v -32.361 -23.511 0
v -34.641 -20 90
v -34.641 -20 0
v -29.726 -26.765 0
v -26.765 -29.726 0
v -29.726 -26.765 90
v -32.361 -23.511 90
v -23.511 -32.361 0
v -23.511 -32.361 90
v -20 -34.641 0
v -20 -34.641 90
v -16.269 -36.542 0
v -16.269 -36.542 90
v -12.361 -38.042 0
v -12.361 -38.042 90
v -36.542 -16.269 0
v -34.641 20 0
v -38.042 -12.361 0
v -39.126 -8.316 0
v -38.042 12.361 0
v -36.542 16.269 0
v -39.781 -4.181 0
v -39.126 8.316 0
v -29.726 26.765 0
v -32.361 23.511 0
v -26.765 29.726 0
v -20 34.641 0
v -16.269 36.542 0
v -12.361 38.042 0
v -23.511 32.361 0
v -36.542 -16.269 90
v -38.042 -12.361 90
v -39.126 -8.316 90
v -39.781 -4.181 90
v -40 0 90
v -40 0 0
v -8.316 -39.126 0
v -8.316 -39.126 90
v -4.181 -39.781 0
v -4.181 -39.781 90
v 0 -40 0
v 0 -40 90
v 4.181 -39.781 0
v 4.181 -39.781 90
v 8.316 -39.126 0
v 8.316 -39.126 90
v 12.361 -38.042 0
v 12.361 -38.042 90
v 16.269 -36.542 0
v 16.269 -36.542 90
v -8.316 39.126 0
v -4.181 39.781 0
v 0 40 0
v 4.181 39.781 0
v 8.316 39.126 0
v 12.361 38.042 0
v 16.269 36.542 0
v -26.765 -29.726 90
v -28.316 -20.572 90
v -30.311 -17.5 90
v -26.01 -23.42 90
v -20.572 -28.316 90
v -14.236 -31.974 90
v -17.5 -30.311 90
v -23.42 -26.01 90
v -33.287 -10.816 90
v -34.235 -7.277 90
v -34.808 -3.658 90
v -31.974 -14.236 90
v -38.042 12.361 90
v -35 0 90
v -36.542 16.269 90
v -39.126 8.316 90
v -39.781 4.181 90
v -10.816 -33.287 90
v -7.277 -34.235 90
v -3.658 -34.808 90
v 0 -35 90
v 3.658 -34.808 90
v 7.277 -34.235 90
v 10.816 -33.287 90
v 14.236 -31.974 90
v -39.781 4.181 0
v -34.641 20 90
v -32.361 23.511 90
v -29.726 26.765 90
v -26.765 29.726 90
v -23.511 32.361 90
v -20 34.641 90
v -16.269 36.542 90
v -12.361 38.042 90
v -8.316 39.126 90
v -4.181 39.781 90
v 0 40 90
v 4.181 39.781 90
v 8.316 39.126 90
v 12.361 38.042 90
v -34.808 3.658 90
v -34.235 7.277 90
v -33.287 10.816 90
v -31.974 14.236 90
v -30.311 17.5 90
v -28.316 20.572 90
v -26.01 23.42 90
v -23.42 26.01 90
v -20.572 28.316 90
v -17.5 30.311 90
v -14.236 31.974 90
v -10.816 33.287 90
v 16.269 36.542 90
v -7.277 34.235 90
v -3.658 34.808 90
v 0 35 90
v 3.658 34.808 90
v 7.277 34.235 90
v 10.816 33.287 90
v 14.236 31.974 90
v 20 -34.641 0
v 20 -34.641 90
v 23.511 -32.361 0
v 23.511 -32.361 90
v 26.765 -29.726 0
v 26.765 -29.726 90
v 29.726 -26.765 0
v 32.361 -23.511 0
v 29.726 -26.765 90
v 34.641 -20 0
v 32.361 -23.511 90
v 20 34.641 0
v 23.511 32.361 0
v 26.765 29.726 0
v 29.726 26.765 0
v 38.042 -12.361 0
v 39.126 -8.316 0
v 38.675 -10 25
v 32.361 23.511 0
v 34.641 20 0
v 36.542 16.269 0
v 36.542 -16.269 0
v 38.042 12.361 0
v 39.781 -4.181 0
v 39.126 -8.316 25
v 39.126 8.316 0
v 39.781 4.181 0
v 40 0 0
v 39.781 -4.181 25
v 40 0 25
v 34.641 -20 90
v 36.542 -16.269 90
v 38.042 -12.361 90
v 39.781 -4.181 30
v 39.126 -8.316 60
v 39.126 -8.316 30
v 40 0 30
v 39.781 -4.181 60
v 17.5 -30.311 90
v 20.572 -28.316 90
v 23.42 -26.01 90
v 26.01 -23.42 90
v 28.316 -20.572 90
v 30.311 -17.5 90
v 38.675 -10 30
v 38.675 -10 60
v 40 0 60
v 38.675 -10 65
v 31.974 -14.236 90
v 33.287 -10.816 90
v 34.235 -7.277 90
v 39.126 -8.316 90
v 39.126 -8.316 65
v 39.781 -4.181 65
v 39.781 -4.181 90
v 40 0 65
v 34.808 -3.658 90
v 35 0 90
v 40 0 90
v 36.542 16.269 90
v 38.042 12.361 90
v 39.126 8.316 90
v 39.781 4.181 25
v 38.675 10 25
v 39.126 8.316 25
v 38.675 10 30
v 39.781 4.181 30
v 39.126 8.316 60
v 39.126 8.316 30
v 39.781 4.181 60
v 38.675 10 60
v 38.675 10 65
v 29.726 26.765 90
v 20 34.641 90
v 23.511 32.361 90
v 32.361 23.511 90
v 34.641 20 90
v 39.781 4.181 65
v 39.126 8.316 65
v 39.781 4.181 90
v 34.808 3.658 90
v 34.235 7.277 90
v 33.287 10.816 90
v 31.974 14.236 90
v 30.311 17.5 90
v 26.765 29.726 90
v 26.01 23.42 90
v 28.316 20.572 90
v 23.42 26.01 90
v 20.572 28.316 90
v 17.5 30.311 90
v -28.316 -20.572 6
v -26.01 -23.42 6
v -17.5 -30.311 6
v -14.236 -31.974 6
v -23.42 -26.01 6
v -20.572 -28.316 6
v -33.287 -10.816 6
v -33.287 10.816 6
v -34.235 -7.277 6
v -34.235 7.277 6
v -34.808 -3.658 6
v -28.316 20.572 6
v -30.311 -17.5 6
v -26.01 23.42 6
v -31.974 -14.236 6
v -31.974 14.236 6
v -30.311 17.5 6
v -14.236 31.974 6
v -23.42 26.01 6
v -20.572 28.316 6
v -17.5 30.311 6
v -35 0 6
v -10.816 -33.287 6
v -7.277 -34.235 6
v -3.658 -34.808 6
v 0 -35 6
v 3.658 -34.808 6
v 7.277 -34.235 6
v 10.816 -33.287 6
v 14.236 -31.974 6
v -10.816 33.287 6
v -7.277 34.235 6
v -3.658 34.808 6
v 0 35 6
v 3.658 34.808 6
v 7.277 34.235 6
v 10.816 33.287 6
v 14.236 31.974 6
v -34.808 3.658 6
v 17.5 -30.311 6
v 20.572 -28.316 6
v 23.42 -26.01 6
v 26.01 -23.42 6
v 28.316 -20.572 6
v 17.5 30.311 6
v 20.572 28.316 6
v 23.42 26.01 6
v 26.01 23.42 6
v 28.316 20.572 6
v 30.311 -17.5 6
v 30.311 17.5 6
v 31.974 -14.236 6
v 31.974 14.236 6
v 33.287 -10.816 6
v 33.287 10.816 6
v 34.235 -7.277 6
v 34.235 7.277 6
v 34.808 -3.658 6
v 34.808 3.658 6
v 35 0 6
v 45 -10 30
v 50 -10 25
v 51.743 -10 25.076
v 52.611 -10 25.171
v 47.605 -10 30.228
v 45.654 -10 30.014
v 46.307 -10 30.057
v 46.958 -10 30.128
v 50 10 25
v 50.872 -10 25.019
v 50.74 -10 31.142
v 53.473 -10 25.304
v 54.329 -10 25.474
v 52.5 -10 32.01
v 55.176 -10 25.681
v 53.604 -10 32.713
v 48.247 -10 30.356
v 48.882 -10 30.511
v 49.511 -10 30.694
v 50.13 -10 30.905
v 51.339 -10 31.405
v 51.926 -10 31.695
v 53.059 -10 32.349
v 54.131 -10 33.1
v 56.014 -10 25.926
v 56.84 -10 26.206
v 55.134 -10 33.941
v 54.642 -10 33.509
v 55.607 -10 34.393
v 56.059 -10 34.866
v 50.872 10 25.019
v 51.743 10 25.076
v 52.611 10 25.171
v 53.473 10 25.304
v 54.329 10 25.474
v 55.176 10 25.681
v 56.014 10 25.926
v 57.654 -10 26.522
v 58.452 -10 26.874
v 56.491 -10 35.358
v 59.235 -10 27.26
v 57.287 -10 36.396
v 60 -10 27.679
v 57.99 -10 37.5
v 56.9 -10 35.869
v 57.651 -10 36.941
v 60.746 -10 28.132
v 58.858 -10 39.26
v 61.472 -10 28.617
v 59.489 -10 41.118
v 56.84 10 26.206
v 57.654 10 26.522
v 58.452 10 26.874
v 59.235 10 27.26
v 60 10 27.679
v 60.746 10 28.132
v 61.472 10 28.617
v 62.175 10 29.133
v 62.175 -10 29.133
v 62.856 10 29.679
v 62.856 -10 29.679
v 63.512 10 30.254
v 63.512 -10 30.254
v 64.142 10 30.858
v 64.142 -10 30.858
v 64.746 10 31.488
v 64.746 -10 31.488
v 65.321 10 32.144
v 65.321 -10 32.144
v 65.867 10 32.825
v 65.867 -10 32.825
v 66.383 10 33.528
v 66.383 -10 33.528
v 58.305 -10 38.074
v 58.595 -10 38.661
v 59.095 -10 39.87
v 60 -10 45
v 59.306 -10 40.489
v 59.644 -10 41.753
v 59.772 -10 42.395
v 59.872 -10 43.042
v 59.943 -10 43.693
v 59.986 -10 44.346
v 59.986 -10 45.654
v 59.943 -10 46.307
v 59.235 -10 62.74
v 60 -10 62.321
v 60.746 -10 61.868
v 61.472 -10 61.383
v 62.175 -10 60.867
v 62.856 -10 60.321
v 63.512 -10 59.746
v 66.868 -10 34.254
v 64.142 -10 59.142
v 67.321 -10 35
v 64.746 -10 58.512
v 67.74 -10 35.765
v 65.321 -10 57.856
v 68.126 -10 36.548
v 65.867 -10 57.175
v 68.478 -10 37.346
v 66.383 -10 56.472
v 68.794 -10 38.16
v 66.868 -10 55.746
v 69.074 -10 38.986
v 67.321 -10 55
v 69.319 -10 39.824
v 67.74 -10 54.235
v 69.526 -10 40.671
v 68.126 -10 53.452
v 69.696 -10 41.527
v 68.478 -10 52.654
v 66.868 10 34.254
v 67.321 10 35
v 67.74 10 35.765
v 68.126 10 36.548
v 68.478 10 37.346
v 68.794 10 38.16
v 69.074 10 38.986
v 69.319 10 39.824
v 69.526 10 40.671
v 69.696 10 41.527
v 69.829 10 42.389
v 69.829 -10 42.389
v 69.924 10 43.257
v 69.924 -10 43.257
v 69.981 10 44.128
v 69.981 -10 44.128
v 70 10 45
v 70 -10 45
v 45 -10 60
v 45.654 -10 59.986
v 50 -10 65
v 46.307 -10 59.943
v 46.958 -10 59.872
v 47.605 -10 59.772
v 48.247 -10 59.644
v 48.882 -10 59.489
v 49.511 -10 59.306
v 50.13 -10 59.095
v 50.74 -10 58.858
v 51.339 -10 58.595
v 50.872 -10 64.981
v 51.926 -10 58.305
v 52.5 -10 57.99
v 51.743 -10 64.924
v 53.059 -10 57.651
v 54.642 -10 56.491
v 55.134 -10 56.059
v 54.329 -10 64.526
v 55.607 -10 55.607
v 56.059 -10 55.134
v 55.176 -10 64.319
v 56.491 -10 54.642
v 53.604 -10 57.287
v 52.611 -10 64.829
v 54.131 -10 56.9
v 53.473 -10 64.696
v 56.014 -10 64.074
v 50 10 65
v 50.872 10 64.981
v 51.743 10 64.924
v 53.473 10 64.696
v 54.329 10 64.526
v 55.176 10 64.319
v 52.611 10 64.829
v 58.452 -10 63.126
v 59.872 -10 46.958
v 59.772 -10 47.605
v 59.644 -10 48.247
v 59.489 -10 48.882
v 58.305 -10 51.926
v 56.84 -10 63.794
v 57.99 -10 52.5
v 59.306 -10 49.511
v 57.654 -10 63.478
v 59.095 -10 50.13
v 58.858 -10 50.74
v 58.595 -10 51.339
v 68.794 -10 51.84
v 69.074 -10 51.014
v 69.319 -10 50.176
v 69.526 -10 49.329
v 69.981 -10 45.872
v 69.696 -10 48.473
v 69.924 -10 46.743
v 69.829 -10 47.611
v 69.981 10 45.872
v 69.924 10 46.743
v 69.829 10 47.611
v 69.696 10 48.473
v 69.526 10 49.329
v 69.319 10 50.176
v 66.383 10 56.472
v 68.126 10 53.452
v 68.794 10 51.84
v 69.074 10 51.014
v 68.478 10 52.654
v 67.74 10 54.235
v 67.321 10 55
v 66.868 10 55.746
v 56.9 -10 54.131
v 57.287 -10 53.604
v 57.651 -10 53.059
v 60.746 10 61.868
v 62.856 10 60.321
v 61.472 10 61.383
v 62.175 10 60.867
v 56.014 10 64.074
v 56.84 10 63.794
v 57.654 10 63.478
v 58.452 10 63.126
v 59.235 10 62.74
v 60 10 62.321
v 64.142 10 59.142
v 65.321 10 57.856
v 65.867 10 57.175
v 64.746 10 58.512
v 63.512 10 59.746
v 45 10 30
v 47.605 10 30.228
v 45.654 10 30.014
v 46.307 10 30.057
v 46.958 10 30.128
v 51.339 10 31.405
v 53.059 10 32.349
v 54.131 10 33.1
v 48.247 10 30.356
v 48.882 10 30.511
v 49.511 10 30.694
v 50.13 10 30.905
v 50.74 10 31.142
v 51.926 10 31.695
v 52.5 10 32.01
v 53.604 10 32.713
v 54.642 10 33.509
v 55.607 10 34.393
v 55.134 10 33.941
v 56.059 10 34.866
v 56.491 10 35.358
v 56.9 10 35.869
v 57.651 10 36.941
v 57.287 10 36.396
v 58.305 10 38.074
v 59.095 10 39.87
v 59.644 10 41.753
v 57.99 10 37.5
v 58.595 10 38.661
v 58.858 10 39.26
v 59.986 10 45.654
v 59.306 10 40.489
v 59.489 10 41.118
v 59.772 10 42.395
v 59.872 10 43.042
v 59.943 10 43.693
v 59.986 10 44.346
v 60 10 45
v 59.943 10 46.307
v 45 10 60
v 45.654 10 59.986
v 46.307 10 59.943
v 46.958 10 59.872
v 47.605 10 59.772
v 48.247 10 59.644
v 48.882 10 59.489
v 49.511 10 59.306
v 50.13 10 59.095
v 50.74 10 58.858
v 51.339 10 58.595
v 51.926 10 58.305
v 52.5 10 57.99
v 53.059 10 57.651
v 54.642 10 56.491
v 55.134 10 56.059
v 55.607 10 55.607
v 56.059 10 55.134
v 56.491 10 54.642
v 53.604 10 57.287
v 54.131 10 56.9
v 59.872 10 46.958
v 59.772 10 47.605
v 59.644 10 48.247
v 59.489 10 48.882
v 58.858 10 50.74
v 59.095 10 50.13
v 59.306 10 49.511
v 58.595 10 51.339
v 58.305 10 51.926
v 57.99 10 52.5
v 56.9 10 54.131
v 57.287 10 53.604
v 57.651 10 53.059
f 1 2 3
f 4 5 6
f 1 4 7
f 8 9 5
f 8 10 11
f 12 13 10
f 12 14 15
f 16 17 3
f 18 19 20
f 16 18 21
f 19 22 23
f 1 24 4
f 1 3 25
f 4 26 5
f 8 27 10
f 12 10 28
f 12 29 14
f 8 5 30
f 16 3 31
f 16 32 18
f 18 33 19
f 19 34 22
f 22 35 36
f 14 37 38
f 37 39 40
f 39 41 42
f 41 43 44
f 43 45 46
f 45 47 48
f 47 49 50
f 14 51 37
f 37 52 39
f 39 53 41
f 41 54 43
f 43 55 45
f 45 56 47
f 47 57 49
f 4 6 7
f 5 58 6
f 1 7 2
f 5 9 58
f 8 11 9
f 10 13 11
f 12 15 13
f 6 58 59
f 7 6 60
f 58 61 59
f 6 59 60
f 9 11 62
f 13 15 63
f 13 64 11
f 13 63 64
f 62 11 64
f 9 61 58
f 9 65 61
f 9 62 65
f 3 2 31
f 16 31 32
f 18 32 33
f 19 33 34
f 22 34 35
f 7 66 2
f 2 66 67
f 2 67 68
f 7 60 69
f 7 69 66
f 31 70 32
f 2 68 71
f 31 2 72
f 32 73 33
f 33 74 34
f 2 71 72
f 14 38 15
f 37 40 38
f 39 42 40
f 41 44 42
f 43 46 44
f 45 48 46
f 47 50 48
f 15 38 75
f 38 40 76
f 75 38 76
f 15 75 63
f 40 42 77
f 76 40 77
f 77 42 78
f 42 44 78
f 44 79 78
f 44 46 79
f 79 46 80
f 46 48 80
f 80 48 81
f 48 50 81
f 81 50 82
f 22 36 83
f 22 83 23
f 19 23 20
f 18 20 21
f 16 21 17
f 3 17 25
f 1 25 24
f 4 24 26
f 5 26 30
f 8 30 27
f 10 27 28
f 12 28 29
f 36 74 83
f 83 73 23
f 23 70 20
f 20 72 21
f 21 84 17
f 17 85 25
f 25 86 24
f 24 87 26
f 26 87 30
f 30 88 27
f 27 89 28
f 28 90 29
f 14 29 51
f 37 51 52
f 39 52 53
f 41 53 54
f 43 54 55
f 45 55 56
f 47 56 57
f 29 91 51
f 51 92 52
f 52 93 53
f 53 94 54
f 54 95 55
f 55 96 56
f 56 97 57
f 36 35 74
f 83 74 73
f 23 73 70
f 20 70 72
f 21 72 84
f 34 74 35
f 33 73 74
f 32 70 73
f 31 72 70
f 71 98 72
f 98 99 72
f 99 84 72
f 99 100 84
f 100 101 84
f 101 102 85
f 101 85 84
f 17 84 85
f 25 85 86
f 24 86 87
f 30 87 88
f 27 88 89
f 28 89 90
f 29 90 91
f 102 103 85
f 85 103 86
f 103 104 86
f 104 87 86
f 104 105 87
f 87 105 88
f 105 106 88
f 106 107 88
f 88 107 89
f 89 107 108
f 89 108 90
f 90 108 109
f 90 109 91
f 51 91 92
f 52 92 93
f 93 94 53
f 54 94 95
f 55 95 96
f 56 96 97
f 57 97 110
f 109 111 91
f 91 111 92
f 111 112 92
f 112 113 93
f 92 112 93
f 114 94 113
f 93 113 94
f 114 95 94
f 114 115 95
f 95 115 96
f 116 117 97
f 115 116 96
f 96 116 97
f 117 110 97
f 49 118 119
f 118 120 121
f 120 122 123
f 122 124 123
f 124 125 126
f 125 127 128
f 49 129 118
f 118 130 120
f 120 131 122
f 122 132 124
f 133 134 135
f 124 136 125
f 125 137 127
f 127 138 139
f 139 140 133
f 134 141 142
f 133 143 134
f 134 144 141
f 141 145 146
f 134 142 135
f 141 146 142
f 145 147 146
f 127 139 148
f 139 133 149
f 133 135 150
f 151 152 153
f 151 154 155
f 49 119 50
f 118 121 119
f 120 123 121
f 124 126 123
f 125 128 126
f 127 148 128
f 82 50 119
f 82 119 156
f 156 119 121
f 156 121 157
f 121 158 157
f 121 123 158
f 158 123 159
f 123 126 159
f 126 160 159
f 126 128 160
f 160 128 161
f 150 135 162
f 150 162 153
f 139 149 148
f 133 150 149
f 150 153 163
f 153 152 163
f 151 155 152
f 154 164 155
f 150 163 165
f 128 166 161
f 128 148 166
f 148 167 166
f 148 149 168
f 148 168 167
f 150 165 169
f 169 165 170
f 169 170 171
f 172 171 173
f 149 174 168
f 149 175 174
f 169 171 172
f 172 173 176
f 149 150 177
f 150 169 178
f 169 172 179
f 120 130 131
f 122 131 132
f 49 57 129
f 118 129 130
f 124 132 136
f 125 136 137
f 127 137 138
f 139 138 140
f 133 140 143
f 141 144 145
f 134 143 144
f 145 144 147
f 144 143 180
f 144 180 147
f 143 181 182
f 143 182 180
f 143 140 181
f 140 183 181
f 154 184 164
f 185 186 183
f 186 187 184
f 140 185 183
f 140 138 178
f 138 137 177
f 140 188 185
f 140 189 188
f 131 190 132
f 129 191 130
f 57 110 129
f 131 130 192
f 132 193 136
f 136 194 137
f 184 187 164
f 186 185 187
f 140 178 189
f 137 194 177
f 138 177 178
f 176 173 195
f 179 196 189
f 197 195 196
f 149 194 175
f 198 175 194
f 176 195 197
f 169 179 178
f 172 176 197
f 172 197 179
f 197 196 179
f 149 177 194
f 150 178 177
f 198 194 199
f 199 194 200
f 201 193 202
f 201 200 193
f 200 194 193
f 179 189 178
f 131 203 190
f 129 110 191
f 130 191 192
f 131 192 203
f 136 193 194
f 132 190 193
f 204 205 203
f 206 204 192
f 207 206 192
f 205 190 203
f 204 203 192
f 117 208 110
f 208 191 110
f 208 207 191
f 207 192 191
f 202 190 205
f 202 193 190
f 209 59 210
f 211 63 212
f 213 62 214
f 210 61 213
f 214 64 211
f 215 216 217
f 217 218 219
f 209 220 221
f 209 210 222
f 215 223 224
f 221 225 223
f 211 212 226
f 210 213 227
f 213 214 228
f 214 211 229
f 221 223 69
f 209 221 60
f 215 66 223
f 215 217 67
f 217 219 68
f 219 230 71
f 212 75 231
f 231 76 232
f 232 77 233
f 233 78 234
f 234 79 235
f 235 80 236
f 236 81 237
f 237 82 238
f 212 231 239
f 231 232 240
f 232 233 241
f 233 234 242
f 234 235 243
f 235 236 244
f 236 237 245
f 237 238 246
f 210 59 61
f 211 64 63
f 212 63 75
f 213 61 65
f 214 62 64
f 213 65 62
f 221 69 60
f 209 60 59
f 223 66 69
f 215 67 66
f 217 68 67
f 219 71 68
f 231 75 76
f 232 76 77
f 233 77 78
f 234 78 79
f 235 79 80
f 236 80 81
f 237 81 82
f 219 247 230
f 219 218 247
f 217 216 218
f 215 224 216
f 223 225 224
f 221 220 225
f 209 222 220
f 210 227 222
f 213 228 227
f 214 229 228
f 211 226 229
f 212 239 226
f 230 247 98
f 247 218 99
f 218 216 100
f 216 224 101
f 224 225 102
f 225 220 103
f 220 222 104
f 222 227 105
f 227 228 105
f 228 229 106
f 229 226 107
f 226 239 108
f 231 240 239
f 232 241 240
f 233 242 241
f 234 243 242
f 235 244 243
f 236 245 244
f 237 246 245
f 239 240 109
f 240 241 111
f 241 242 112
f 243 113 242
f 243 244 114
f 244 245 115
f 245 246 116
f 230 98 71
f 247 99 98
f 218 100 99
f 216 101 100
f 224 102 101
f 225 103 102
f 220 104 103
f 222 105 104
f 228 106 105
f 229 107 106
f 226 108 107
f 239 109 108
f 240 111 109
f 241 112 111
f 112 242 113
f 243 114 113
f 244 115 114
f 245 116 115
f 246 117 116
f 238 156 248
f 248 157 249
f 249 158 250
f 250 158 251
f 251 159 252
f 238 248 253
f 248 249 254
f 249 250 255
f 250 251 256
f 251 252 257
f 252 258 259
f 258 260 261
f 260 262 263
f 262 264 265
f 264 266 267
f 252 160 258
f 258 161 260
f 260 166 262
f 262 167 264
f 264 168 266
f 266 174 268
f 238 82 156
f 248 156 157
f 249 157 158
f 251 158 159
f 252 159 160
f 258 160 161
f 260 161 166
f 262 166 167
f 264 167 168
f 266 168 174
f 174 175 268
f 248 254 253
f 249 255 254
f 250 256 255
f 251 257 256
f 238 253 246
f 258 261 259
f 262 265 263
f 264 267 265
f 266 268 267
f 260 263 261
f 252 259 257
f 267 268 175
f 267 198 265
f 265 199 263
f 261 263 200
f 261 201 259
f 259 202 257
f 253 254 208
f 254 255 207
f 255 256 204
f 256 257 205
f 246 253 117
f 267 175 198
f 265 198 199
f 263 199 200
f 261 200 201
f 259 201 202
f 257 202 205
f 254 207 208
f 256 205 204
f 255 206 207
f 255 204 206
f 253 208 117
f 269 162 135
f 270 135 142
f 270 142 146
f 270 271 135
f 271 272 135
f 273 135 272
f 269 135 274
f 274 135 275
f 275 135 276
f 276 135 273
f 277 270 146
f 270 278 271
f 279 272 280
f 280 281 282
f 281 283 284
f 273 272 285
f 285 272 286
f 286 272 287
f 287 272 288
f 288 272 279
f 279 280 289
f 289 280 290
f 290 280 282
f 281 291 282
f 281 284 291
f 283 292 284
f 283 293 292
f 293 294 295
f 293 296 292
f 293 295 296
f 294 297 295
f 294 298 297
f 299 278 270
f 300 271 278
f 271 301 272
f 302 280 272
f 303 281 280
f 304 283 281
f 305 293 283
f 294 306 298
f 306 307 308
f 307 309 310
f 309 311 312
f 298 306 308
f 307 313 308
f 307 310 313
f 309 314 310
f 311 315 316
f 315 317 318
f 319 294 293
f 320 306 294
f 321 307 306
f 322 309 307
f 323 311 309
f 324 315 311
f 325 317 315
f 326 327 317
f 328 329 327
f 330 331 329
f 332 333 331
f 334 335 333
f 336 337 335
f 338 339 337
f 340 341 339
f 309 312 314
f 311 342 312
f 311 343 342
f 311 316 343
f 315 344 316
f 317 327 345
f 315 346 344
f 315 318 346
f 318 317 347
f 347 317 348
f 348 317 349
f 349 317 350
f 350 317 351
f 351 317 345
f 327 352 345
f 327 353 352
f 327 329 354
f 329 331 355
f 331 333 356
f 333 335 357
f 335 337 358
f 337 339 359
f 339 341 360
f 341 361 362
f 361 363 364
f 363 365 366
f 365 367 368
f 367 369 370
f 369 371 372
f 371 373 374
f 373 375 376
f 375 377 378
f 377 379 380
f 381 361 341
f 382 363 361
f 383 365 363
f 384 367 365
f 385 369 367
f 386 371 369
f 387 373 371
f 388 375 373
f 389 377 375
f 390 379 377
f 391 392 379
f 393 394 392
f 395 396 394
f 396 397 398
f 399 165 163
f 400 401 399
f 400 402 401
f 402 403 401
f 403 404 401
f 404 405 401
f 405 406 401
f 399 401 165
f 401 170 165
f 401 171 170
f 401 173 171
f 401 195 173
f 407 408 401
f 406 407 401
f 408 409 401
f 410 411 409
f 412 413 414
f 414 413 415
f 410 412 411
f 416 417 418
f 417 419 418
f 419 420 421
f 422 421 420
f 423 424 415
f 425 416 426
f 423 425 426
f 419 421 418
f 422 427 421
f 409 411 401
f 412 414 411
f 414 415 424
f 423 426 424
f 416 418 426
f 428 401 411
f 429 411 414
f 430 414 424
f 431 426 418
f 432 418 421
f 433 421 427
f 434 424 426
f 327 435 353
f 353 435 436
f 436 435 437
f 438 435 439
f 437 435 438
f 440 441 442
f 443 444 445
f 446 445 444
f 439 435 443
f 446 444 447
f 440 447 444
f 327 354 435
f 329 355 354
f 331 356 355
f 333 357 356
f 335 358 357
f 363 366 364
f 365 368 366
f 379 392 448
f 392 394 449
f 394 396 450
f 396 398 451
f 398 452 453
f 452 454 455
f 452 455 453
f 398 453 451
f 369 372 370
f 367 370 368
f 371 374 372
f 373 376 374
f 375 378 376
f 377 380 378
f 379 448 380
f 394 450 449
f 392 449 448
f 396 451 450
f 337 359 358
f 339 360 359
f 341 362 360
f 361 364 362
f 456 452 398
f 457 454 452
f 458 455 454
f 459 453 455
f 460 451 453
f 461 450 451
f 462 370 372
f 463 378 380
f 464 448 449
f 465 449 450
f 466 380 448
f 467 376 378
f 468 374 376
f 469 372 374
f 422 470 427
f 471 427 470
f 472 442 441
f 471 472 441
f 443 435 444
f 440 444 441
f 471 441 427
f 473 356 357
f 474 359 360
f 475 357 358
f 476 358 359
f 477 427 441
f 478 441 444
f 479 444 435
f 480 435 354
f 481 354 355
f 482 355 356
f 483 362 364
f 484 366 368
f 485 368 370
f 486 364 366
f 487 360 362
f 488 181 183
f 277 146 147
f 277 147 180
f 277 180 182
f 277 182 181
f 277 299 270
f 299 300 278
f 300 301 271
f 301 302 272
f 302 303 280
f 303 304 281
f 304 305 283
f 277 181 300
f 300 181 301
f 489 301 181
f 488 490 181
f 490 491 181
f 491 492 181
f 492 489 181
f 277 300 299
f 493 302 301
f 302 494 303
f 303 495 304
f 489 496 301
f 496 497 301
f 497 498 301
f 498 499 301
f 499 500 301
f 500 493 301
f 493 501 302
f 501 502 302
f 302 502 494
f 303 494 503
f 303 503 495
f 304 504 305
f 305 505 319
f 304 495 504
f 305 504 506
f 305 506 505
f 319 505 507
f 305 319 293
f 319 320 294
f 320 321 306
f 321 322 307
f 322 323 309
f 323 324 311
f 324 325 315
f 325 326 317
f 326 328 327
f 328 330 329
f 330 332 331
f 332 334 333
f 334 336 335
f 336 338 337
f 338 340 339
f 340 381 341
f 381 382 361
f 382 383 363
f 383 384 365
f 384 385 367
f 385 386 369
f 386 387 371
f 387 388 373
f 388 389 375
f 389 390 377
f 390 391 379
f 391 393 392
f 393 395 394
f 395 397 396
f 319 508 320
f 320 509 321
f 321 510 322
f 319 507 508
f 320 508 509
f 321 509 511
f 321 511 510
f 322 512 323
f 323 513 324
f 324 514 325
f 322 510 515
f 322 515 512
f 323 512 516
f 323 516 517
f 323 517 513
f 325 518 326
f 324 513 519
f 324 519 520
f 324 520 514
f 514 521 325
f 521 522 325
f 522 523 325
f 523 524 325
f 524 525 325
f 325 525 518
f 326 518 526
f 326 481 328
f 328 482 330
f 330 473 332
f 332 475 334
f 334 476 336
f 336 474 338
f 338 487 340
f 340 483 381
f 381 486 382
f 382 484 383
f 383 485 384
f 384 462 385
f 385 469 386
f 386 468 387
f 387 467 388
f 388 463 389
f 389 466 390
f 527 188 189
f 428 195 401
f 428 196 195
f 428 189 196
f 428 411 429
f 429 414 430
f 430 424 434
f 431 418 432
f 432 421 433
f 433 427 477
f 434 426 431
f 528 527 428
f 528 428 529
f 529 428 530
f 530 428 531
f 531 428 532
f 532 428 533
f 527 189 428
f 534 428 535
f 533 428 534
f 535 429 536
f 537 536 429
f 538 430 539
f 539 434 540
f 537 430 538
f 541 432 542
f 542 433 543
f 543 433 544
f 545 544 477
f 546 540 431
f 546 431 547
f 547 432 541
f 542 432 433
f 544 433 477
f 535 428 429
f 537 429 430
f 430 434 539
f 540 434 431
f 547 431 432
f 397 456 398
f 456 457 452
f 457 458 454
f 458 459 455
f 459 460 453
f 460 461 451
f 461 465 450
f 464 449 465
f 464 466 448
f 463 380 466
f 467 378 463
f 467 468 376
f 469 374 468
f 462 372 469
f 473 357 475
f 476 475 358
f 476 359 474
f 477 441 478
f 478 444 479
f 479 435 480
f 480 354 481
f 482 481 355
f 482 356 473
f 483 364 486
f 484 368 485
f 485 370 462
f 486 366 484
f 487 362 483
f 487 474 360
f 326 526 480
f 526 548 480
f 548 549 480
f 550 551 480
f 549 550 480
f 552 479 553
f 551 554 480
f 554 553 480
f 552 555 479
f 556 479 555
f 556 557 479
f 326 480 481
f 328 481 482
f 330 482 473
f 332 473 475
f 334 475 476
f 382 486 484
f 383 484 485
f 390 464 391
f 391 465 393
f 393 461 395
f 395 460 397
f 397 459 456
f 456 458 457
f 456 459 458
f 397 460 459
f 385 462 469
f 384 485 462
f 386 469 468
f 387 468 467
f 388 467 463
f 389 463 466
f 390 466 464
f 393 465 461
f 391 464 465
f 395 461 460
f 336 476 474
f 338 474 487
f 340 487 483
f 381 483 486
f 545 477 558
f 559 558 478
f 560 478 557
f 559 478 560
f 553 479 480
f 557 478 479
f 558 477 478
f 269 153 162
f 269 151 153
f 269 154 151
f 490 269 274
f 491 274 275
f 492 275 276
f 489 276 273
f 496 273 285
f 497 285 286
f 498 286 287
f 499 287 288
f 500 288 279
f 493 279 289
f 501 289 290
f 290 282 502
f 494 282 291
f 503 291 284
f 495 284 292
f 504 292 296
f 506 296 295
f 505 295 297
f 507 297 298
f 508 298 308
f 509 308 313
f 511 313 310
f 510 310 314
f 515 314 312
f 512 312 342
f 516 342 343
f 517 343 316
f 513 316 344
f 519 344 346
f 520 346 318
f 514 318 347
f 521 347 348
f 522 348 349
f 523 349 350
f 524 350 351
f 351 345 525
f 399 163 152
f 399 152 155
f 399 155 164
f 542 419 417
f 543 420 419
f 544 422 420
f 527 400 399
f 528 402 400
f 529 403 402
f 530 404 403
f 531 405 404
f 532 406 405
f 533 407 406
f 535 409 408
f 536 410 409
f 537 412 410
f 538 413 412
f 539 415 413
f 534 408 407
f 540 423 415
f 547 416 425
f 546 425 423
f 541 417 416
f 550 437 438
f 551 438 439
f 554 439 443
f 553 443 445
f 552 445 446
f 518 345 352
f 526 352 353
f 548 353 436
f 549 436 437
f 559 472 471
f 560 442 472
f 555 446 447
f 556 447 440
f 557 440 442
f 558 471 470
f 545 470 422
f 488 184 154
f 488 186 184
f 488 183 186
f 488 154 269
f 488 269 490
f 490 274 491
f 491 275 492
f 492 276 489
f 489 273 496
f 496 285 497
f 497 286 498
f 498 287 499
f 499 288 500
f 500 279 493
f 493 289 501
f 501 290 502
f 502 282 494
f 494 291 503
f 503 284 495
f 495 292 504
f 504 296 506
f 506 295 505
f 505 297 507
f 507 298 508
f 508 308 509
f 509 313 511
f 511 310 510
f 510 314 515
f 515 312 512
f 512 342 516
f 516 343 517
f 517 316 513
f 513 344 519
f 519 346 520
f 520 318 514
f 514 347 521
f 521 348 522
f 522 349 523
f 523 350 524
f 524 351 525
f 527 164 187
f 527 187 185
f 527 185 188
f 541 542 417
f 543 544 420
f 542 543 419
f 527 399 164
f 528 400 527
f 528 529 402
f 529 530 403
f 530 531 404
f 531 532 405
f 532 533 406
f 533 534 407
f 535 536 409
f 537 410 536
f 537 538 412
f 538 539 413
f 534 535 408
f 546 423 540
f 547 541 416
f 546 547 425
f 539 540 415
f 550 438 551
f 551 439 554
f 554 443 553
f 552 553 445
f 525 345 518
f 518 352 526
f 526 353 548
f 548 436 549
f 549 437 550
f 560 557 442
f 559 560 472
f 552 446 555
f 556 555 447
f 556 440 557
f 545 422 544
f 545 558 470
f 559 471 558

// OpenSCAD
$fa = 6;
$fs = 0.5;

outer_diameter = 80;
inner_diameter = 70;
mug_height = 90;
bottom_thickness = 6;

outer_radius = outer_diameter / 2;
inner_radius = inner_diameter / 2;

handle_inner_height = 30;
handle_inner_width = 25;
handle_wall_thickness = 5;
handle_depth_y = 20;
handle_center_height = mug_height / 2;
handle_attach_x = inner_radius;

handle_inner_radius = handle_inner_height / 2;
handle_outer_radius = handle_inner_radius + handle_wall_thickness;
handle_inner_flat = handle_inner_width - handle_inner_radius;
handle_outer_flat = handle_inner_flat + handle_wall_thickness;

module d_profile(flat_depth, radius, steps=72) {
    polygon(points = concat(
        [[0, -radius], [0, radius]],
        [for (i = [0:steps]) [
            flat_depth + radius * cos(90 - 180 * i / steps),
            radius * sin(90 - 180 * i / steps)
        ]]
    ));
}

module mug_body() {
    difference() {
        cylinder(h = mug_height, r = outer_radius);
        translate([0, 0, bottom_thickness])
            cylinder(h = mug_height - bottom_thickness, r = inner_radius);
    }
}

module mug_handle() {
    translate([handle_attach_x, 0, handle_center_height])
        rotate([90, 0, 0])
            difference() {
                linear_extrude(height = handle_depth_y, center = true, convexity = 10)
                    d_profile(handle_outer_flat, handle_outer_radius);
                linear_extrude(height = handle_depth_y, center = true, convexity = 10)
                    d_profile(handle_inner_flat, handle_inner_radius);
            }
}

union() {
    mug_body();
    mug_handle();
}
